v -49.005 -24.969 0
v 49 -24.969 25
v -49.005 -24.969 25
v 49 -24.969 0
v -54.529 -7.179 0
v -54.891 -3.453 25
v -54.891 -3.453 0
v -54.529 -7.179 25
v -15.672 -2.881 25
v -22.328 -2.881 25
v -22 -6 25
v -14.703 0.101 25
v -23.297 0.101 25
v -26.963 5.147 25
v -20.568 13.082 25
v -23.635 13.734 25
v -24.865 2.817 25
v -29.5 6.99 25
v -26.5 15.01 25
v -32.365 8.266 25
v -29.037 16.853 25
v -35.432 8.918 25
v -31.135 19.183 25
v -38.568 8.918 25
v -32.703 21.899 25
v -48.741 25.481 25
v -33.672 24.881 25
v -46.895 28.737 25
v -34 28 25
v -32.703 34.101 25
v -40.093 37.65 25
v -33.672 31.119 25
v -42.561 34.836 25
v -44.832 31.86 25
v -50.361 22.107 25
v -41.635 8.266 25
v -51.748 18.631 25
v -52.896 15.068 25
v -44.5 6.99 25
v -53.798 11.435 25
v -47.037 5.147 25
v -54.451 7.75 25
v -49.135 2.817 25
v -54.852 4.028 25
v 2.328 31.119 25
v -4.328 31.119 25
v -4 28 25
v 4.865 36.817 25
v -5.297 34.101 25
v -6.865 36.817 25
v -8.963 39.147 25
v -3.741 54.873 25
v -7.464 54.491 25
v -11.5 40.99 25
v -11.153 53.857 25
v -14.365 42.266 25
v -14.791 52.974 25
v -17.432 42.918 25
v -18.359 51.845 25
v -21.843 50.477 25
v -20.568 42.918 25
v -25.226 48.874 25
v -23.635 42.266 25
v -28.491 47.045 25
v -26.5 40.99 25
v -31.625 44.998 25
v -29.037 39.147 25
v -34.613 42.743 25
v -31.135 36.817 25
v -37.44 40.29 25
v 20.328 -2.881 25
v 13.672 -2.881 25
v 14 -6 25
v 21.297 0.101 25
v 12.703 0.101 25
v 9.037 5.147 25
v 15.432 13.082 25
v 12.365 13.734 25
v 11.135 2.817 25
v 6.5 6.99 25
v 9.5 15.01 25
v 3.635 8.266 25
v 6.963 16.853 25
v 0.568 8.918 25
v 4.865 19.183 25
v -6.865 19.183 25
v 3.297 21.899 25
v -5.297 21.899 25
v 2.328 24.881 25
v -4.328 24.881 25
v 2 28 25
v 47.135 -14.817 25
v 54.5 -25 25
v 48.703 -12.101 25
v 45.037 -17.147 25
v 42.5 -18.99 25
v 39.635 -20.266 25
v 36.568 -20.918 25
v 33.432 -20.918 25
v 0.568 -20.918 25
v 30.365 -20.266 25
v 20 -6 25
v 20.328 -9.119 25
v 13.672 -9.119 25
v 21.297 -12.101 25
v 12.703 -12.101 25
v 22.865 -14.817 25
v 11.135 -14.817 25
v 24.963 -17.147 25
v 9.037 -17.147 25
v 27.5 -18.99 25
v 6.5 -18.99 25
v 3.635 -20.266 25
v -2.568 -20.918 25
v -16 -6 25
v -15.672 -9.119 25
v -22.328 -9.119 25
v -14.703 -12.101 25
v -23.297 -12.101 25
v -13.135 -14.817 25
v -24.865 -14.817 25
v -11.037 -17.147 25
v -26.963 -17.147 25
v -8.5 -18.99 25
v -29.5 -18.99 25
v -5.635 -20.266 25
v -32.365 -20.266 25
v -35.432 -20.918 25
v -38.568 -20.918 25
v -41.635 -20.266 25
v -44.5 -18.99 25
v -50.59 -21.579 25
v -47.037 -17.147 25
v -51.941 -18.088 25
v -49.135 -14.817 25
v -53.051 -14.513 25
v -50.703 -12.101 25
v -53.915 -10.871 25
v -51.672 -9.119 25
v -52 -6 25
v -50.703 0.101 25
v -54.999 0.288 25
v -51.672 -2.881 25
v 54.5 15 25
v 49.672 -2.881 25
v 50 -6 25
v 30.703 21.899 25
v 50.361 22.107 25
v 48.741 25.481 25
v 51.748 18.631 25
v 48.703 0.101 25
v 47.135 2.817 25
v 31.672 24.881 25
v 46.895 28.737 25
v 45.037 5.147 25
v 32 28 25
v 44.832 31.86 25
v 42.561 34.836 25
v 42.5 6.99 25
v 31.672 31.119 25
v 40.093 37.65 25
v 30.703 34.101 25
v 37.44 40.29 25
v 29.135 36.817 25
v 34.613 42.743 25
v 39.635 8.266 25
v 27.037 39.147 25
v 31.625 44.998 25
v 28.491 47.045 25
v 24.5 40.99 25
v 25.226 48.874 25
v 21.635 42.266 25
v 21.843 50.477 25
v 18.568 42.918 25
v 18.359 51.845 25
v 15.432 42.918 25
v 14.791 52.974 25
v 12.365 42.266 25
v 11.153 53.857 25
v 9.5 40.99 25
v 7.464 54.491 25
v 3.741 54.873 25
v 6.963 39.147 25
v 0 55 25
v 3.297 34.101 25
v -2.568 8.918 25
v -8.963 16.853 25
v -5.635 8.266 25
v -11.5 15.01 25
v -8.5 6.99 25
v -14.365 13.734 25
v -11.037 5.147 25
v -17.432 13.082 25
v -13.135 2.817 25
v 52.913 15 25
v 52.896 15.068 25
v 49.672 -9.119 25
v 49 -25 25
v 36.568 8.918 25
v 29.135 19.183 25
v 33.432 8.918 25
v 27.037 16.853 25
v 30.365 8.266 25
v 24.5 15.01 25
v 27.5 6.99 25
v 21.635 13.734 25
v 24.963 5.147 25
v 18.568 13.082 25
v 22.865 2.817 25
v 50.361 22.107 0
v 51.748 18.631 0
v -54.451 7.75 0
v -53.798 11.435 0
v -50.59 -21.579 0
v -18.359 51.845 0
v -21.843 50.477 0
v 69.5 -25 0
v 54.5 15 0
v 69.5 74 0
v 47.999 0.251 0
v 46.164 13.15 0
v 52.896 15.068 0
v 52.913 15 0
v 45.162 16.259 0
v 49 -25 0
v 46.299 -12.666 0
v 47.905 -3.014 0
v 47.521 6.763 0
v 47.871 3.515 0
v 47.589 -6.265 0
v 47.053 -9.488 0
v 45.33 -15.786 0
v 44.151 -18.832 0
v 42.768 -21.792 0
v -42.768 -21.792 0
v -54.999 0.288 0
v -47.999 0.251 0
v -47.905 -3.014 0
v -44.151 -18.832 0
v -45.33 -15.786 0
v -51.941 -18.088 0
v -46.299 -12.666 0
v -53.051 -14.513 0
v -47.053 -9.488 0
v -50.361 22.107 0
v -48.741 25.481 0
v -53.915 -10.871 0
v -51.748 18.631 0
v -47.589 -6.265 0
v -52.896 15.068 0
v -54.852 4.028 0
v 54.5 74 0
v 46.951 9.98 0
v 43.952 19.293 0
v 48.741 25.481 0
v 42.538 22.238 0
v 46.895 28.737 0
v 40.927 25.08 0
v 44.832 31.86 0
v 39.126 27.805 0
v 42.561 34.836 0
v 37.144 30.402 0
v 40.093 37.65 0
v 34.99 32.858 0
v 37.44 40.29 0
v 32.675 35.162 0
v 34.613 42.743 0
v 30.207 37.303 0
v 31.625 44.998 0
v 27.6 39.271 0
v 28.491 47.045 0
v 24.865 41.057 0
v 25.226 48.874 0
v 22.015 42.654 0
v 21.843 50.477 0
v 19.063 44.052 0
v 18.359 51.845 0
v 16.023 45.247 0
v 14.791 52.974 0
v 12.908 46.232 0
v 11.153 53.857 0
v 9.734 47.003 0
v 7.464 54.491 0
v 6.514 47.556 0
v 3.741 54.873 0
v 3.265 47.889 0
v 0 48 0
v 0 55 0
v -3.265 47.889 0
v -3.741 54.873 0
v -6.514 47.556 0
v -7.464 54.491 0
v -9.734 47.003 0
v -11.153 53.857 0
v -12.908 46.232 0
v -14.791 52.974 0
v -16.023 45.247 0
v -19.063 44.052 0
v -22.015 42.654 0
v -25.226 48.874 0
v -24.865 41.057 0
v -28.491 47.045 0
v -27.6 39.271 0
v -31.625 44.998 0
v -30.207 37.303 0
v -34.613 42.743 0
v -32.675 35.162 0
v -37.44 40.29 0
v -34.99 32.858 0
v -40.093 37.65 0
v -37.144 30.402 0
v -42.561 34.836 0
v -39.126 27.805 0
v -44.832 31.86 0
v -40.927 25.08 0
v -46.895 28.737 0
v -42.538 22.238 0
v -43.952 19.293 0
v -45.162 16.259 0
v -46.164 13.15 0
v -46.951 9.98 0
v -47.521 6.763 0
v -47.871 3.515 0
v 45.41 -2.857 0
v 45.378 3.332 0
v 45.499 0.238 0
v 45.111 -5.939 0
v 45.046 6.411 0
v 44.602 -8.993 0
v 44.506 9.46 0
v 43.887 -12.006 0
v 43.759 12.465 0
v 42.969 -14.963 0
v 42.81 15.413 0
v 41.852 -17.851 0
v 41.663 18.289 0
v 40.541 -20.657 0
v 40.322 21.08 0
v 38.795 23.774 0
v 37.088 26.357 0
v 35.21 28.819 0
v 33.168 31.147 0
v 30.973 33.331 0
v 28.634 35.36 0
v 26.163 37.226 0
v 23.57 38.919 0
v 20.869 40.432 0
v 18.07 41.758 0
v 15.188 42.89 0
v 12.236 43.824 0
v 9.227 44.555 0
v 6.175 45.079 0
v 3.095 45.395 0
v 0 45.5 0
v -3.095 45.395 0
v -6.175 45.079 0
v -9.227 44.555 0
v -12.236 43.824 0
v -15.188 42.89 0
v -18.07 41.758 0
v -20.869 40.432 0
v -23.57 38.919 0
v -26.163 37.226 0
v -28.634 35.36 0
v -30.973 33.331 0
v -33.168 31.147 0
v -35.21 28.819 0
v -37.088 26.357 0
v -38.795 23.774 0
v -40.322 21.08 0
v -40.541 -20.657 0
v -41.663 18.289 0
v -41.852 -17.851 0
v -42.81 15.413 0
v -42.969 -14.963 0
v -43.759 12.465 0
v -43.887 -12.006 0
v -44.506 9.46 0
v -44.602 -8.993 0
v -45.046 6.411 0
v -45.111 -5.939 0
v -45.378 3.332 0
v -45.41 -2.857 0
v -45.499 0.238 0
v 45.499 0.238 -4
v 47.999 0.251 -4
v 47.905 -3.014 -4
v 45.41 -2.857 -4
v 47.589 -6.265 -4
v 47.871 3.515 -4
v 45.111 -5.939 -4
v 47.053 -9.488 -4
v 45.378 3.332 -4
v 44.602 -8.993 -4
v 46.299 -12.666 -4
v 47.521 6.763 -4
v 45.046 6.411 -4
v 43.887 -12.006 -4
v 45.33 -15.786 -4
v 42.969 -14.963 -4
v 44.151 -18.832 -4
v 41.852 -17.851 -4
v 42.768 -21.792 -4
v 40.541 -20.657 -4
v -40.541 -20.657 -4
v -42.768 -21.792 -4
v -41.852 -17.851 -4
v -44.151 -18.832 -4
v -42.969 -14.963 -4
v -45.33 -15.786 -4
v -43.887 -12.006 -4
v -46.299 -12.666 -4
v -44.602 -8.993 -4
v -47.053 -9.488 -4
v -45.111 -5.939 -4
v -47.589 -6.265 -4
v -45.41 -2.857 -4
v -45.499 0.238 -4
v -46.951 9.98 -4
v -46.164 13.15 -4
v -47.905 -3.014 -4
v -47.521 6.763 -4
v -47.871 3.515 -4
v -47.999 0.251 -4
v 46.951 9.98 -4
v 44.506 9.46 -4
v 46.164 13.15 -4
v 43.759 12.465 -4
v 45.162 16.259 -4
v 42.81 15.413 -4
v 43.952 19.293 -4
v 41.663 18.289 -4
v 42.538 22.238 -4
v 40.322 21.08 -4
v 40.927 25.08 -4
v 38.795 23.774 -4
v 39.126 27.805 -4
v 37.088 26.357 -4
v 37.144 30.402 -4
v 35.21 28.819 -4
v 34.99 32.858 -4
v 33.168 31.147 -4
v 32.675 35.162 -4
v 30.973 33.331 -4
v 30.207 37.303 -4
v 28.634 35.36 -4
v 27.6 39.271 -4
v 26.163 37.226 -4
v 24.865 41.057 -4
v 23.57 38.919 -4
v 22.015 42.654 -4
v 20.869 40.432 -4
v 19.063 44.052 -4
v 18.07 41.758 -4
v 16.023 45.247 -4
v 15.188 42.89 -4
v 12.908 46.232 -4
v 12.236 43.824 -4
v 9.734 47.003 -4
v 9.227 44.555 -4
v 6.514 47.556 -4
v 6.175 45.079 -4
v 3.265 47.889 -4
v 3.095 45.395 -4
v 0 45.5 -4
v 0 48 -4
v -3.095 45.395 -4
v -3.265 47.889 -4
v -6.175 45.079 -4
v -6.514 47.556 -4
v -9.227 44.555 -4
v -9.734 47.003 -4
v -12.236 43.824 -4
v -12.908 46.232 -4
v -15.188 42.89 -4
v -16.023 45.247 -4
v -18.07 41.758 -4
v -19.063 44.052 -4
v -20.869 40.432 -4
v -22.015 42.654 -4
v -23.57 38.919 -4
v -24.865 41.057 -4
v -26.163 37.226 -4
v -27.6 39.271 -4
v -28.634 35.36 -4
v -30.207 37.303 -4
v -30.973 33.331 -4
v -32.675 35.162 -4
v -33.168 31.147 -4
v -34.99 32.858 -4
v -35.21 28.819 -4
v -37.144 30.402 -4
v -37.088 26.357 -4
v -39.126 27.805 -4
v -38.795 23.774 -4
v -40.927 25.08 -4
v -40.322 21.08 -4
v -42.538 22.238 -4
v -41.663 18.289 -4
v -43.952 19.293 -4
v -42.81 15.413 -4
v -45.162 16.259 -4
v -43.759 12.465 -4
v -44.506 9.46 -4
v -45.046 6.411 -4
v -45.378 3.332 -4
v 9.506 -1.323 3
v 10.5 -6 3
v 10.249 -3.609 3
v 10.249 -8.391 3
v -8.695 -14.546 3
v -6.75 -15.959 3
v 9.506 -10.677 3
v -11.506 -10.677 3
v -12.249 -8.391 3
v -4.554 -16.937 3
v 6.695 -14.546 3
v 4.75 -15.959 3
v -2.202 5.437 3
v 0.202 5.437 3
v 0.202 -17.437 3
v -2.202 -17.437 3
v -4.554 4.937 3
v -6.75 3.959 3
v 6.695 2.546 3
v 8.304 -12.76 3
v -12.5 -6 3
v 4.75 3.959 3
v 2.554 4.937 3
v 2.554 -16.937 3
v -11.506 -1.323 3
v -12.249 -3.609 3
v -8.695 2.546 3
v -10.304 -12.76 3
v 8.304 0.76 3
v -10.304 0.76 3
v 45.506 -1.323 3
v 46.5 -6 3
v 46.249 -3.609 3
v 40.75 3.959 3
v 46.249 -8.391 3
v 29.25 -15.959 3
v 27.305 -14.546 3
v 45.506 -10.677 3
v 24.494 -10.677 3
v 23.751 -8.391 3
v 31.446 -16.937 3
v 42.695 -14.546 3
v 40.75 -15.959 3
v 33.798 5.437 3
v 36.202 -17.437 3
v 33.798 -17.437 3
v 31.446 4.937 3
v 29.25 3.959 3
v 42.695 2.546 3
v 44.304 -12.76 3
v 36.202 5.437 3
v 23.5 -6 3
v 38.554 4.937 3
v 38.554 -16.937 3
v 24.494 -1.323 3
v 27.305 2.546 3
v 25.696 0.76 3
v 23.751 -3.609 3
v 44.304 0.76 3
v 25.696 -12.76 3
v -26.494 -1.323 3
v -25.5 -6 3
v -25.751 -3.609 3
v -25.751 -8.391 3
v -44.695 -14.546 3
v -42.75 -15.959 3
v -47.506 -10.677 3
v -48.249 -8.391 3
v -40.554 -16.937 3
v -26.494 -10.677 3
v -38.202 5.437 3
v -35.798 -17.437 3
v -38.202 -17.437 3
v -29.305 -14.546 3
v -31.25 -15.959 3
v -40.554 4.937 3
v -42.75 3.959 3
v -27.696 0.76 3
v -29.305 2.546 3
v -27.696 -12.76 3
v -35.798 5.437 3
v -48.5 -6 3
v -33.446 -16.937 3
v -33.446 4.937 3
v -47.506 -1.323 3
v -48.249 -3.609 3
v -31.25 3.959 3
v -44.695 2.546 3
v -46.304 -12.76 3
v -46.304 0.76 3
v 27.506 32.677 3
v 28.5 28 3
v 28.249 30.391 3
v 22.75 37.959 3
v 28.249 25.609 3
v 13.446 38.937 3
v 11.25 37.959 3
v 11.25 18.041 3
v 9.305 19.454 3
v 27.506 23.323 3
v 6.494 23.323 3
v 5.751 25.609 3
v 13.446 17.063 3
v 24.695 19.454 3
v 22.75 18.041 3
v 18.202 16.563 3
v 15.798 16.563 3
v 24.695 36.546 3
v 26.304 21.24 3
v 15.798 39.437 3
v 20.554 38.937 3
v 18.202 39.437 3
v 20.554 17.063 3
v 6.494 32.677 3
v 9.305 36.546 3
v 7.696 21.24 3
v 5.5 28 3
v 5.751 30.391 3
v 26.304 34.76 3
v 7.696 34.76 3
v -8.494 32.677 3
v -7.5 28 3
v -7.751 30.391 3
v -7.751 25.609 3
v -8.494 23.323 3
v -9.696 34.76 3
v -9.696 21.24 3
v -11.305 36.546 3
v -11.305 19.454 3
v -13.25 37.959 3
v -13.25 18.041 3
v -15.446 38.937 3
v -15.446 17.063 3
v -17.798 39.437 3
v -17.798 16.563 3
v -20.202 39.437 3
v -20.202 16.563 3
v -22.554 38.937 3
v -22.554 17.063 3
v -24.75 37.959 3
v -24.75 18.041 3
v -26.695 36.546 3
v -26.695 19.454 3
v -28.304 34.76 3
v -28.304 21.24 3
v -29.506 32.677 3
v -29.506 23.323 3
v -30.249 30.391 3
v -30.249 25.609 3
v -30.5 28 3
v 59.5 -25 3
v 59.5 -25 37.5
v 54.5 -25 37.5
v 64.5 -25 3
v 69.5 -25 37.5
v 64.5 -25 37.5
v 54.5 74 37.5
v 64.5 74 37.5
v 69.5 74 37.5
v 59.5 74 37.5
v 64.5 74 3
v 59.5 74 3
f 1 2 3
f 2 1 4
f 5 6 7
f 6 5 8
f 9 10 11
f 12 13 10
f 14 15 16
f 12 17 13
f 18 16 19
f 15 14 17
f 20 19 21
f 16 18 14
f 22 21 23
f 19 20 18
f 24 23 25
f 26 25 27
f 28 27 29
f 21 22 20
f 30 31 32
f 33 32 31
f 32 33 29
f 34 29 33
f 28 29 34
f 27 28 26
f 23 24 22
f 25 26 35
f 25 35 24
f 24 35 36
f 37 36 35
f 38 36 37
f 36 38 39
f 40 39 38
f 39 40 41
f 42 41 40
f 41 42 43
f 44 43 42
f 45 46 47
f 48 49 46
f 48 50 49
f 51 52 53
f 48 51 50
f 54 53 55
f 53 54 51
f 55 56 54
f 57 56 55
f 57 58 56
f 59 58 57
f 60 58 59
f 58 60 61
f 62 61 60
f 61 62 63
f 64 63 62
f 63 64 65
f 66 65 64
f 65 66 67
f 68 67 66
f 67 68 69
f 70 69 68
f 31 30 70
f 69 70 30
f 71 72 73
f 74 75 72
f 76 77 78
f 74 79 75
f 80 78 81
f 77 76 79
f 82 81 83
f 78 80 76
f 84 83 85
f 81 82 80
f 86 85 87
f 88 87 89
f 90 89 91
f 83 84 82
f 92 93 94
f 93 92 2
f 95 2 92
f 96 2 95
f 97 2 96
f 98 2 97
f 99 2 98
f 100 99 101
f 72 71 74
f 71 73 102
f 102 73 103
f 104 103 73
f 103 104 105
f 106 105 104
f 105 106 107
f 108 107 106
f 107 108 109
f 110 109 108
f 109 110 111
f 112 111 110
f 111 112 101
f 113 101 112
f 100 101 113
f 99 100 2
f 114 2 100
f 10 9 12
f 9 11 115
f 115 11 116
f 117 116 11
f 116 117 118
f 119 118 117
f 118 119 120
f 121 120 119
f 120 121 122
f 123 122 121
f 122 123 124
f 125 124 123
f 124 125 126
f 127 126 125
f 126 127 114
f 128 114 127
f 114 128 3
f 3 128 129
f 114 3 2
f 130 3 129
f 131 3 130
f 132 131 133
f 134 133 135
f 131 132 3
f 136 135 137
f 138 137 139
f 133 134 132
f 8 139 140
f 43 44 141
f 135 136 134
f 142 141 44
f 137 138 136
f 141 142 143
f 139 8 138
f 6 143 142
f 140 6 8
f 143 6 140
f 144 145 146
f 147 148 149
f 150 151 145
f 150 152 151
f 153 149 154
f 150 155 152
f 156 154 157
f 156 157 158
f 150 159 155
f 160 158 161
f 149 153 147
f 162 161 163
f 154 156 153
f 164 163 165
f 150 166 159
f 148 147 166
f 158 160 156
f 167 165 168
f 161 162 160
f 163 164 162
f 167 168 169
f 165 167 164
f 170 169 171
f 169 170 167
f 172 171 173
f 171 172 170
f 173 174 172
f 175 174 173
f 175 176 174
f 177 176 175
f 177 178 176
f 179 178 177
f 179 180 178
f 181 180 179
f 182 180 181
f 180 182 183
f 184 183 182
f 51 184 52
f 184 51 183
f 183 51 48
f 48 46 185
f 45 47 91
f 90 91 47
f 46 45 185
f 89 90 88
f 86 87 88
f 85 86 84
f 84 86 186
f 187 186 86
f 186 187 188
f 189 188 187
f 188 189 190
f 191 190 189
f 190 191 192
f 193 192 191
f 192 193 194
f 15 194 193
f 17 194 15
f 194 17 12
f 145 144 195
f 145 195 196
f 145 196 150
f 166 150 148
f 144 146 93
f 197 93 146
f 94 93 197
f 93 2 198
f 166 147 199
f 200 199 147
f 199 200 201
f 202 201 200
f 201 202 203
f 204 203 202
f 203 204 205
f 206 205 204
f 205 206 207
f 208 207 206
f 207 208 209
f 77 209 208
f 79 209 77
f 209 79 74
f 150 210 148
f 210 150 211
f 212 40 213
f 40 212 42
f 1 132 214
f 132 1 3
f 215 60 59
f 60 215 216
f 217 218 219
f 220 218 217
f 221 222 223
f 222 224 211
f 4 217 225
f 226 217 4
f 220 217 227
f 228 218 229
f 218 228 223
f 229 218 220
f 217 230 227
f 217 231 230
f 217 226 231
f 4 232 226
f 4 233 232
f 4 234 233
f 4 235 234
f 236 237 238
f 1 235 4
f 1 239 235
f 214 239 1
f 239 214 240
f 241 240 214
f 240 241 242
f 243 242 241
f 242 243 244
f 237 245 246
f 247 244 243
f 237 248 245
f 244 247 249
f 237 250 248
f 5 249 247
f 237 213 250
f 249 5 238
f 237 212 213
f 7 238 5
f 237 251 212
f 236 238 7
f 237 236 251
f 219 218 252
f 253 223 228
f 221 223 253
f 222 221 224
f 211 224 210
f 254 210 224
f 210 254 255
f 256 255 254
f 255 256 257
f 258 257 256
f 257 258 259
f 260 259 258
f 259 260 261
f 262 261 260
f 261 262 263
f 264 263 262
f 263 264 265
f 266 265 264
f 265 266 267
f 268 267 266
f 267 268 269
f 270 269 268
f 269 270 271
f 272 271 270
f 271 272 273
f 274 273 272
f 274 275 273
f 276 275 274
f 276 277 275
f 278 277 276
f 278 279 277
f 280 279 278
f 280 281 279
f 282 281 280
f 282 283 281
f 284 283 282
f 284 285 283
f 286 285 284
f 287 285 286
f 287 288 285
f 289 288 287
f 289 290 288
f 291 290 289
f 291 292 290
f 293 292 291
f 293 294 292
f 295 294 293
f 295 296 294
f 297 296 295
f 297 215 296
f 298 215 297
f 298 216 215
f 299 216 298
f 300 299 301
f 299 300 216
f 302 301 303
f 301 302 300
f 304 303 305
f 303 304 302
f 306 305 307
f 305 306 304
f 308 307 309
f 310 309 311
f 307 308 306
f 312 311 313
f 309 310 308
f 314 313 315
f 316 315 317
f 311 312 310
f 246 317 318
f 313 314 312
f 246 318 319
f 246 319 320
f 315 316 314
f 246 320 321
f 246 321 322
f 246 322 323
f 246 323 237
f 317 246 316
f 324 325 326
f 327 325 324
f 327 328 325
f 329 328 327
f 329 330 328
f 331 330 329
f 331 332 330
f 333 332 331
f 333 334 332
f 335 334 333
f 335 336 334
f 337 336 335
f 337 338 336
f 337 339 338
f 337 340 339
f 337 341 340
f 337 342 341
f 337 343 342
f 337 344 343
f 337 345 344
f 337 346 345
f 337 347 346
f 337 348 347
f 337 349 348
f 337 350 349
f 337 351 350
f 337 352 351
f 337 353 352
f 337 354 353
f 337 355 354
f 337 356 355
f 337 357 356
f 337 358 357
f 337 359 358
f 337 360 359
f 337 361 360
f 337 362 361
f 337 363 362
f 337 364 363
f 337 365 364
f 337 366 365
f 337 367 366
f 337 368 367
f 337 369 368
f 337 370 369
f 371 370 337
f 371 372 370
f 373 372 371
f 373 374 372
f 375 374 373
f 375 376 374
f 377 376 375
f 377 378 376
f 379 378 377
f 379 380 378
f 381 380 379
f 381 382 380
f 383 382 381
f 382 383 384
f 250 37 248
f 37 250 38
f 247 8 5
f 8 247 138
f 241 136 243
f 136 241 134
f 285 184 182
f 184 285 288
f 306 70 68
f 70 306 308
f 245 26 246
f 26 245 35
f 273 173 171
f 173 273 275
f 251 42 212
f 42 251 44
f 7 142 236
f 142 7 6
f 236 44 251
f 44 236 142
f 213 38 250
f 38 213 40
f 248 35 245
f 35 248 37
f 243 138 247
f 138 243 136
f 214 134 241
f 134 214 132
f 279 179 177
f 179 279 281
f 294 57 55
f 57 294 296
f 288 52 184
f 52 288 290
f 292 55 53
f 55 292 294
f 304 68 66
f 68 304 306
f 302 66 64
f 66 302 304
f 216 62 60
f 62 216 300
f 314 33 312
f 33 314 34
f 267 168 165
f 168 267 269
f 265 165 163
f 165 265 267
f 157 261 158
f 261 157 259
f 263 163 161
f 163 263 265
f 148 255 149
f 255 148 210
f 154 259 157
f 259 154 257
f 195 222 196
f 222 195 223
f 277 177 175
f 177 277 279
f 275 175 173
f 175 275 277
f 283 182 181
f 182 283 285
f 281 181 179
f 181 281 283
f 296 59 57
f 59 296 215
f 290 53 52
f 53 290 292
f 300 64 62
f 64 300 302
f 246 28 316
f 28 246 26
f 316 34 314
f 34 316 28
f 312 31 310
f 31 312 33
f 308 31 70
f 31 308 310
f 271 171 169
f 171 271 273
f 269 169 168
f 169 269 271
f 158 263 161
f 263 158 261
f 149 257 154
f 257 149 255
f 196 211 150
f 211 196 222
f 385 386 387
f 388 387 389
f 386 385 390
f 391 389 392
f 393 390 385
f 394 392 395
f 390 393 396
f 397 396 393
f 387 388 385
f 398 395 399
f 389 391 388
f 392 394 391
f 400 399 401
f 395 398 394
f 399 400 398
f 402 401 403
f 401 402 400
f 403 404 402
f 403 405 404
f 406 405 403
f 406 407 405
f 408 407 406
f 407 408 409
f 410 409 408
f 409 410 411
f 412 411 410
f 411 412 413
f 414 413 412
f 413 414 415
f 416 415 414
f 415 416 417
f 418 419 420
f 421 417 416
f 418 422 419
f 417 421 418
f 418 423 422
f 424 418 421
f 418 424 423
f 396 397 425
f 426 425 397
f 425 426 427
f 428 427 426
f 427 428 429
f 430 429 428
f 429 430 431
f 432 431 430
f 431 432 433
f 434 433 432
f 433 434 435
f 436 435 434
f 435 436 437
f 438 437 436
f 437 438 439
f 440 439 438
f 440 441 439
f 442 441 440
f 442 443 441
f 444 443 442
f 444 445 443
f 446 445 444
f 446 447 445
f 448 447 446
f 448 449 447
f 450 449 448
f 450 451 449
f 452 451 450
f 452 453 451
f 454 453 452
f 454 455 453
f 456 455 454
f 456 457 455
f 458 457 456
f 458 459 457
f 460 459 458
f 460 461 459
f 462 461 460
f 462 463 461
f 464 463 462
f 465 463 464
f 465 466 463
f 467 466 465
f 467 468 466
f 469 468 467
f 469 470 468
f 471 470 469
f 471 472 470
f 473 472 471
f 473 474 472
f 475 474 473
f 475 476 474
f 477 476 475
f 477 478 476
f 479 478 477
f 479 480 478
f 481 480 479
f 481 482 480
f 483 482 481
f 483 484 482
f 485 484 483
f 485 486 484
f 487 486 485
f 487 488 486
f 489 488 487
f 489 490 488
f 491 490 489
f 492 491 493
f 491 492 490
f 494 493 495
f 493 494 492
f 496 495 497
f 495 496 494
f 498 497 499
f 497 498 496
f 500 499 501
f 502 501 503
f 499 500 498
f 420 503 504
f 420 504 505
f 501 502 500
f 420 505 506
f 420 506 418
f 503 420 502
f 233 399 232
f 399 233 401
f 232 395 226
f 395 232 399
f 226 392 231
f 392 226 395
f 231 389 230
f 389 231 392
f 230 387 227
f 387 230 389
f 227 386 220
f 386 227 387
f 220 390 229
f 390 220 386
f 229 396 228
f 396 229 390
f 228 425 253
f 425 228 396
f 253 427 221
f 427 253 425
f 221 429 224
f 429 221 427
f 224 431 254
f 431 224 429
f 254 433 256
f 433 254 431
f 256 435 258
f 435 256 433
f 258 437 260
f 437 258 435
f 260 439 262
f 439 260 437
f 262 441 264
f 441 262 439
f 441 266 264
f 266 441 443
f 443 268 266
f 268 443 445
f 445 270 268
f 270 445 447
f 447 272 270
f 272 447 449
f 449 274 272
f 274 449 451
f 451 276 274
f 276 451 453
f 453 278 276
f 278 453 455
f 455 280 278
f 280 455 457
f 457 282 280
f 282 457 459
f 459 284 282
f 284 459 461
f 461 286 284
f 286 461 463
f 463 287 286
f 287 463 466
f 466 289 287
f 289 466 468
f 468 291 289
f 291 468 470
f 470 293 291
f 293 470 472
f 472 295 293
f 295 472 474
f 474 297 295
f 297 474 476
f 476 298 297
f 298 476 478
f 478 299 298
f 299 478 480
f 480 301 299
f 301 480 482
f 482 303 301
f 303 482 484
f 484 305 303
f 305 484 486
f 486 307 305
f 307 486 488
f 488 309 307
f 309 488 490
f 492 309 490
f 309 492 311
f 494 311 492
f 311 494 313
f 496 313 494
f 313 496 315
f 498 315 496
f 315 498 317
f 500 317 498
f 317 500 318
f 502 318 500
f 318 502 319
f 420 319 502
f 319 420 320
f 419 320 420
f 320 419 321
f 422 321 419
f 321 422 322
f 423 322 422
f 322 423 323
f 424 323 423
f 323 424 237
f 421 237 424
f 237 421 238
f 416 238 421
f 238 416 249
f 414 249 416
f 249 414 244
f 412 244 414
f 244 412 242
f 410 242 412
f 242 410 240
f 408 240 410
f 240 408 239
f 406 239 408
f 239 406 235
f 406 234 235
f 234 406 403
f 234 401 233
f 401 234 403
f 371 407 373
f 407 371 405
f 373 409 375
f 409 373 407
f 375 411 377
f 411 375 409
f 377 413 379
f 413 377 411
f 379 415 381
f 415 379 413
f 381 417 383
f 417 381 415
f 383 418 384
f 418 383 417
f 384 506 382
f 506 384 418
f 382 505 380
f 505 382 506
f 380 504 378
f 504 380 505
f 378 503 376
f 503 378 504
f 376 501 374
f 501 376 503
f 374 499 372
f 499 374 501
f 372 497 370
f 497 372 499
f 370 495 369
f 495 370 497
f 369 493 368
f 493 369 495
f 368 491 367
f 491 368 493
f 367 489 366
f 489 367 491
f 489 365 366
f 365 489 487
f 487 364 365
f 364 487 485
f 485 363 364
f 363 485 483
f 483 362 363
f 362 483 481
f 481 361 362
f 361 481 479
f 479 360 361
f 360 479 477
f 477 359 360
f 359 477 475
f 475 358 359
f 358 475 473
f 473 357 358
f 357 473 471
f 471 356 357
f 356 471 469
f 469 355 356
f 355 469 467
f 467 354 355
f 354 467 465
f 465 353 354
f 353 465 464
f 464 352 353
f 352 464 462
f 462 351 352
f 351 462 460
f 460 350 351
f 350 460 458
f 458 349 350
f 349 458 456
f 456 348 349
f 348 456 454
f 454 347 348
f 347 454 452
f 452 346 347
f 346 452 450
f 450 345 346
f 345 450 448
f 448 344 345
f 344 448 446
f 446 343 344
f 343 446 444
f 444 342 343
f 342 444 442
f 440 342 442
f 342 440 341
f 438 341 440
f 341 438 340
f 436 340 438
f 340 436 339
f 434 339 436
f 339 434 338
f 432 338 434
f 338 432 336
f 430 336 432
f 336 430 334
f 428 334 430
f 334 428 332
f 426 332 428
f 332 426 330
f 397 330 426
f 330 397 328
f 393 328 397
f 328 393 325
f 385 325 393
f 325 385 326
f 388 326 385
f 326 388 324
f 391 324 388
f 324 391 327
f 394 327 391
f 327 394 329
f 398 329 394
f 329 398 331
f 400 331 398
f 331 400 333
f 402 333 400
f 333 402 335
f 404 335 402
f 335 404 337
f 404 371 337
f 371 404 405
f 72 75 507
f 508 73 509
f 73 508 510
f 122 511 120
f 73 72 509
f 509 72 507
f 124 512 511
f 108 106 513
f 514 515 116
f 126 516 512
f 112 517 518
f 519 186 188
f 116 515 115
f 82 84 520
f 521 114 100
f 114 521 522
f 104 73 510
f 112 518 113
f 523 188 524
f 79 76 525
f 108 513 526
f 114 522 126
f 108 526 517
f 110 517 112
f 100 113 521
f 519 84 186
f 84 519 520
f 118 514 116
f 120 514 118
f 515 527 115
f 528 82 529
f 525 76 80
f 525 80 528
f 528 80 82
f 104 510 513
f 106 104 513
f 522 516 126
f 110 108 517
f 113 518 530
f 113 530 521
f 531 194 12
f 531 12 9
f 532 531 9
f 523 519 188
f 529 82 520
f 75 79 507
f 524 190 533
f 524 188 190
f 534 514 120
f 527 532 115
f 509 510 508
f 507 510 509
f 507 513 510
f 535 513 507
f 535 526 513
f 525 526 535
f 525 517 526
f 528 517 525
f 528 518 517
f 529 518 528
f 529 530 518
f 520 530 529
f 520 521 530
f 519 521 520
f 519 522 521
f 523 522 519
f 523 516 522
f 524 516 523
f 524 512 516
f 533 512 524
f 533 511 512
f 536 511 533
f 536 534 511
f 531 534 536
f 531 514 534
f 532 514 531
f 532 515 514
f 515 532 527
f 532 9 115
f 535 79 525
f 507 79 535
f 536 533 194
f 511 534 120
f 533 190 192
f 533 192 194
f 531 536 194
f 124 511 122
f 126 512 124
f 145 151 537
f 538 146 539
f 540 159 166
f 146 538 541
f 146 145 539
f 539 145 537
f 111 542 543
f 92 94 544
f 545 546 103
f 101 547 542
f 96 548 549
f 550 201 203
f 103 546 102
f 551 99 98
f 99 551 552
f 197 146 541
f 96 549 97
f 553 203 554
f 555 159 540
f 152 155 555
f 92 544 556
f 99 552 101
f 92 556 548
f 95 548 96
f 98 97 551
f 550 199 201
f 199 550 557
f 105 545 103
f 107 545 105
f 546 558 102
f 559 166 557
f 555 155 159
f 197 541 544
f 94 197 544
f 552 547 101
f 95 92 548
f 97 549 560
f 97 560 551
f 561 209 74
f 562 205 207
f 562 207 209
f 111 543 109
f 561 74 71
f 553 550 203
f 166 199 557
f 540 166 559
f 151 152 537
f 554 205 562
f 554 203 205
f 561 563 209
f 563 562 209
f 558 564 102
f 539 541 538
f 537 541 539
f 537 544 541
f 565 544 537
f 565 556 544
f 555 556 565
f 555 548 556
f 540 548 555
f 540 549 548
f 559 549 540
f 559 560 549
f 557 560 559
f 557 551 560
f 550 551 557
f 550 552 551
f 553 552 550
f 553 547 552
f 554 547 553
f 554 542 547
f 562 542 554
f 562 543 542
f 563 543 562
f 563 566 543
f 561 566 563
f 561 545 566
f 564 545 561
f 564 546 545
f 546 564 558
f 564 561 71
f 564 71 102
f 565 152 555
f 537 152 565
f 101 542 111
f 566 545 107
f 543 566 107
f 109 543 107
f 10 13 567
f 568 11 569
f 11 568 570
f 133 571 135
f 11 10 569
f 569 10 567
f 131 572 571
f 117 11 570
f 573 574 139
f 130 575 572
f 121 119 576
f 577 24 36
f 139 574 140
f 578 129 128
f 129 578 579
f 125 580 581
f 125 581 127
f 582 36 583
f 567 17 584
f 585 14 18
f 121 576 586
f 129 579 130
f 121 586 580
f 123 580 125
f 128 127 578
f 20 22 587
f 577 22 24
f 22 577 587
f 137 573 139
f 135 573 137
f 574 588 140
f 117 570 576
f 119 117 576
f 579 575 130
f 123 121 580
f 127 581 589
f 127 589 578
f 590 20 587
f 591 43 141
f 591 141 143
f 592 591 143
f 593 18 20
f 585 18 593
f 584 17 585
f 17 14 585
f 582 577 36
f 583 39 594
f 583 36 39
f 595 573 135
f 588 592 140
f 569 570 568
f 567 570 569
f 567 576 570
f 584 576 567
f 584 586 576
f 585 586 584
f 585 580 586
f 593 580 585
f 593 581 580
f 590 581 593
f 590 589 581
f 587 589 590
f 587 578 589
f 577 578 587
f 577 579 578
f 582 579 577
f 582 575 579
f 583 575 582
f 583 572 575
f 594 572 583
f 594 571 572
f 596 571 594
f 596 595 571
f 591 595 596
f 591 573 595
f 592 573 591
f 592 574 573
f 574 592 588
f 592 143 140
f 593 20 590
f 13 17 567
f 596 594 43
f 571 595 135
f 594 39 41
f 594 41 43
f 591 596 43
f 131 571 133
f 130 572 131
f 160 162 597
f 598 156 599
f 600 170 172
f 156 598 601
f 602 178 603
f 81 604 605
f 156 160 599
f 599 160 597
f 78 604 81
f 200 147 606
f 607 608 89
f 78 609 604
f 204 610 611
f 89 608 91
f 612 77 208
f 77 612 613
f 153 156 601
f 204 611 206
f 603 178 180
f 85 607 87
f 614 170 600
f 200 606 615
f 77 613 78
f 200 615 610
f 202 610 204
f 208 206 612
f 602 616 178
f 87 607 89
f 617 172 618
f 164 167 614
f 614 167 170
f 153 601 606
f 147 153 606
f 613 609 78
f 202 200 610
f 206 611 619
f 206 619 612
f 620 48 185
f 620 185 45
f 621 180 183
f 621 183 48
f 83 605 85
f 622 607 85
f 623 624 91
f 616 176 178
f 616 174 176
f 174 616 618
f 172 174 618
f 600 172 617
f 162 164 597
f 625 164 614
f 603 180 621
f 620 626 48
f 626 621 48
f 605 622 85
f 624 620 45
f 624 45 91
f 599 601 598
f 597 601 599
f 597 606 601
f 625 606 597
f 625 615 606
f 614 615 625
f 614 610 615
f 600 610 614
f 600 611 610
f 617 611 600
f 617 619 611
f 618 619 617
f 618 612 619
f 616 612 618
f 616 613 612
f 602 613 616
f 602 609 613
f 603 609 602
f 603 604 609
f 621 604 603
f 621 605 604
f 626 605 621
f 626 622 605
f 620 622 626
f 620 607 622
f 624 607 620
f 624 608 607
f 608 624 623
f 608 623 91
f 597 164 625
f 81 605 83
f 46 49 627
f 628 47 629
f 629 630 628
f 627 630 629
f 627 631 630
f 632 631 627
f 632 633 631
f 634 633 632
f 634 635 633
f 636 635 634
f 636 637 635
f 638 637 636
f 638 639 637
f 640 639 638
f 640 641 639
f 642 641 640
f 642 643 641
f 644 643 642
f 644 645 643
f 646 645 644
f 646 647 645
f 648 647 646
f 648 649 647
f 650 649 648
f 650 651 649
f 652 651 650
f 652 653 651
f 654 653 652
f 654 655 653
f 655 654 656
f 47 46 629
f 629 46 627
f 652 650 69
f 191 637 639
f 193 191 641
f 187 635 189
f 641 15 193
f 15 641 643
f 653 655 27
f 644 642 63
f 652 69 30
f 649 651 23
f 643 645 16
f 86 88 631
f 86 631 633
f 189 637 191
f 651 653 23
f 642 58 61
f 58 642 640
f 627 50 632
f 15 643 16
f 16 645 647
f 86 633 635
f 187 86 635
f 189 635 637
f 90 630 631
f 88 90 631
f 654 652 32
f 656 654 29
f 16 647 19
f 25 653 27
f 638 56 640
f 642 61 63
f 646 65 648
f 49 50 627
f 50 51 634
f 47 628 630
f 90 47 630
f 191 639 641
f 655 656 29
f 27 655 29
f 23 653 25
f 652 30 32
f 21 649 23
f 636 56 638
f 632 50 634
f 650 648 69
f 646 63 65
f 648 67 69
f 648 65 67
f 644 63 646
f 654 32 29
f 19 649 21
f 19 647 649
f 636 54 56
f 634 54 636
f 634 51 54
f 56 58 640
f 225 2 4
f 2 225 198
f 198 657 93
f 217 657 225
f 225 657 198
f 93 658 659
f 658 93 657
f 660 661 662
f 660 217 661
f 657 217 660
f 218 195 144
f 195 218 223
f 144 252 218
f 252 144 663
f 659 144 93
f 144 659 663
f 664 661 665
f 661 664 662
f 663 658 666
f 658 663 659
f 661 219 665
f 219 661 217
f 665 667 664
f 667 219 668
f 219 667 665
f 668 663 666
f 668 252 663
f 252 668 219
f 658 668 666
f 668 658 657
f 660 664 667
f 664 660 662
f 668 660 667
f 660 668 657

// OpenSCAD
SphereRadius=2;
OverAngle=27;
InnerRadius = 48;
MainRadius=InnerRadius+7;
LipWidth=2.5;
HolderHeight=25;
LipHeight=4;
PodBottomDiameter=23;
PodTopDiameter=30;
PodHeight=22;

module sequentialHull(){
    echo($children);
    for (i = [0: $children-2])
        hull(){
            children(i);
            children(i+1);
        }
}


module OutlinePoly(r=30,numPoints=60,anglemin=0,anglemax=180)
{
    step = (anglemax-anglemin)/numPoints;
    polypoints=[ for(a=[anglemin:step:anglemax]) [r*cos(a),r*sin(a)] ];
    polygon(points=polypoints);
}


module MainBody()
{
    linear_extrude(height=HolderHeight)
    {
        OutlinePoly(r=MainRadius,anglemin=-OverAngle,anglemax=180+OverAngle);
    }
    translate([0,0,-LipHeight])
    linear_extrude(height=LipHeight)
    {
        difference()
        {
            OutlinePoly(r=InnerRadius,anglemin=-OverAngle,anglemax=180+OverAngle);
            OutlinePoly(r=InnerRadius-LipWidth,anglemin=-OverAngle,anglemax=180+OverAngle);
        }
    }
}

module Pod()
{
    hull()
    {
        linear_extrude(height=0.1) circle(d=PodBottomDiameter);
        translate([0,0,PodHeight])  linear_extrude(height=0.1) circle(d=PodTopDiameter);
    }
}

module PaperTray()
{
    Height = HolderHeight*1.5;
    HalfHeight=Height/2;

    translate([MainRadius-6,-25,0])
    {
        difference()
        {
            union()
            {
                cube([20,40,HolderHeight]);
                translate([5.5,0,0]) cube([15,MainRadius*1.8,HolderHeight*1.5]);
            }
            translate([10.5,0,3]) cube([5,MainRadius*2,100]);
        }
    }
}

module PodHoles()
{
    translate([0,-4,3]) Pod();
    translate([36,-4,3]) Pod();
    translate([-36,-4,3]) Pod();
    translate([18,30,3]) Pod();
    translate([-18,30,3]) Pod();
}

difference()
{
    union()
    {
        MainBody();
        PaperTray();
    }
    translate([-1,-2,0]) PodHoles();
}
